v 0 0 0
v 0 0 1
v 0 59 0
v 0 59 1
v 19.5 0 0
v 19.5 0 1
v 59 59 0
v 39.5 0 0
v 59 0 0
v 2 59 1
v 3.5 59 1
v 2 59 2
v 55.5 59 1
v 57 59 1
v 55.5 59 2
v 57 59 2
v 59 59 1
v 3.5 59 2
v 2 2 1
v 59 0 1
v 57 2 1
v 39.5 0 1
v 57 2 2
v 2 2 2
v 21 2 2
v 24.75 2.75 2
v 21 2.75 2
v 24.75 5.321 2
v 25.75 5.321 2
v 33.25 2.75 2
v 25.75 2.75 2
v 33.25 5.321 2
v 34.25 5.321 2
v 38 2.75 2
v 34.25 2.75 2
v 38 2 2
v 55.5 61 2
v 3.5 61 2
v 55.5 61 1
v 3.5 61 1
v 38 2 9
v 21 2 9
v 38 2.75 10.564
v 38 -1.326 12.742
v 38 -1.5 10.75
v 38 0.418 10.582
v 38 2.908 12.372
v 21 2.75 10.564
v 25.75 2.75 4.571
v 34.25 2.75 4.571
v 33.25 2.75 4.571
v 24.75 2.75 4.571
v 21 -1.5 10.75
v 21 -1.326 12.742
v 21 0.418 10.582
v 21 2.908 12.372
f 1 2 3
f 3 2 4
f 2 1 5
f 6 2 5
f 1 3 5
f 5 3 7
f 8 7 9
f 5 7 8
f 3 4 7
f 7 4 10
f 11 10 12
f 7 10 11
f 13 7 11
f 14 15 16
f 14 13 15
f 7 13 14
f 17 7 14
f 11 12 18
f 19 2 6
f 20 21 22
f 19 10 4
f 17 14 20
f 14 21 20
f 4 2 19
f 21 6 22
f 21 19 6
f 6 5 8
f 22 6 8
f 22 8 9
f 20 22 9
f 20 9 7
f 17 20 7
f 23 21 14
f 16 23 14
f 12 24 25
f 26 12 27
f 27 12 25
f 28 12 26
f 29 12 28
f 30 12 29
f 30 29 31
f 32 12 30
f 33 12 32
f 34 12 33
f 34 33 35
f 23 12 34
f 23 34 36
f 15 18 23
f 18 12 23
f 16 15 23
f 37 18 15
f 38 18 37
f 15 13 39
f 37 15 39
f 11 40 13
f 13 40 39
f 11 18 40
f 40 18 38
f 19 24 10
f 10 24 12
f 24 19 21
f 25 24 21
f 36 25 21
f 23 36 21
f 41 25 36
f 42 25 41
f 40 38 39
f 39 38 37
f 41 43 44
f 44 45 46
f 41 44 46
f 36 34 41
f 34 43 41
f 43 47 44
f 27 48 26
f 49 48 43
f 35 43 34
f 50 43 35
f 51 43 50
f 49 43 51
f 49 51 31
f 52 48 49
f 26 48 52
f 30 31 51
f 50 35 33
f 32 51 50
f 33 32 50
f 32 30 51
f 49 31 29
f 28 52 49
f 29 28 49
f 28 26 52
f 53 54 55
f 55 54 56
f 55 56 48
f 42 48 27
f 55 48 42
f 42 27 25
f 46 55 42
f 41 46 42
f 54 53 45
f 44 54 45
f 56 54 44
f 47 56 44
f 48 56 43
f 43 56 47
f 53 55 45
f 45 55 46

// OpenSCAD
// Speak&Spell Battery Lid
// 2012-12-26 Bernhard Slawik (http://www.bernhardslawik.de)
EPS = 0.005;
thick = 1.0;
space = 1.5;

lidWidth = 59.0;
lidLength = 59.0;
lidRecess = 2.0;	// Recess of lid borders on upper layer
lidOver = 2.0;	// How far the lid s under the chassis

fixPress = 0.0;
fixWidth = 20.0 - 2*space;
fixToothHeight = 10.0;
fixHeight = fixToothHeight +14.0;	// From bottom to "tooth" inside chassis
fixDepth = 2.5;	// Height of "tooth"
fixRecess = 2.0;
fixThick = 0.75;	// Thickness of flexible stuff
fixToothThick = fixRecess + 1.5;

bossThick = 5.0;
bosses = 2;
angle=0;
module lid() {
	difference() {
		union() {
			// Main layers
			cube([lidWidth, lidLength, thick]);

			translate([lidRecess, lidRecess, thick])
			cube([lidWidth - 2*lidRecess, lidLength - 1*lidRecess, thick]);
		}

		// Fixer
		translate([lidWidth/2 - fixWidth/2 - space, -EPS, -EPS])
		cube([fixWidth + 2*space, fixPress + EPS, thick*2 + 2*EPS]);
	}

	// Back hanger
	//@TODO: Slant it for easier printing
	translate([lidRecess + space, lidLength - EPS, thick])
	cube([lidWidth - 2*lidRecess - 2*space, lidOver + EPS, thick]);
	

	// Fixer
	translate([lidWidth/2 - fixWidth/2, fixRecess - sin(angle)*fixToothHeight, thick])
	rotate([-angle,0,0])
	cube([fixWidth, fixThick, fixToothHeight]);

	for (i=[0:bosses-1])
	translate([- ((bosses-1)*fixWidth/bosses)/2+(fixWidth/bosses)*i, 0, 0])
	intersection() {
		translate([lidWidth/2 - thick/2, fixRecess - sin(angle)*fixToothHeight + fixThick, -bossThick/2])
		rotate([45,0,0])
		cube([thick, bossThick, bossThick]);

		translate([lidWidth/2 - thick/2, fixRecess - sin(angle)*fixToothHeight + fixThick, thick])
		cube([thick, bossThick, bossThick]);
	}

/*
	translate([lidWidth/2 - fixWidth/2, fixRecess - sin(angle)*fixToothHeight + fixThick, thick])
	rotate([-angle+4.5,0,0])
	cube([fixWidth, fixThick, fixToothHeight + thick/2]);
*/




	// Anti-tooth
	translate([lidWidth/2 - fixWidth/2, fixRecess - fixToothThick, fixToothHeight + space/2])
	rotate([-5.0, 0, 0])
	cube([fixWidth, fixToothThick + fixThick, thick*2]);

	intersection() {
		translate([lidWidth/2 - fixWidth/2, fixRecess - thick*2, fixToothHeight + thick])
		rotate([-45.0, 0, 0])
		cube([fixWidth, thick*4, thick*3]);

		translate([lidWidth/2 - fixWidth/2, fixRecess - fixToothThick + thick, fixToothHeight + thick - thick*3])
		cube([fixWidth, fixToothThick - fixThick, thick*3]);
	}



}

//intersection() {
lid();
//translate([0, -10, 0])	cube([100, 20,50]);}
